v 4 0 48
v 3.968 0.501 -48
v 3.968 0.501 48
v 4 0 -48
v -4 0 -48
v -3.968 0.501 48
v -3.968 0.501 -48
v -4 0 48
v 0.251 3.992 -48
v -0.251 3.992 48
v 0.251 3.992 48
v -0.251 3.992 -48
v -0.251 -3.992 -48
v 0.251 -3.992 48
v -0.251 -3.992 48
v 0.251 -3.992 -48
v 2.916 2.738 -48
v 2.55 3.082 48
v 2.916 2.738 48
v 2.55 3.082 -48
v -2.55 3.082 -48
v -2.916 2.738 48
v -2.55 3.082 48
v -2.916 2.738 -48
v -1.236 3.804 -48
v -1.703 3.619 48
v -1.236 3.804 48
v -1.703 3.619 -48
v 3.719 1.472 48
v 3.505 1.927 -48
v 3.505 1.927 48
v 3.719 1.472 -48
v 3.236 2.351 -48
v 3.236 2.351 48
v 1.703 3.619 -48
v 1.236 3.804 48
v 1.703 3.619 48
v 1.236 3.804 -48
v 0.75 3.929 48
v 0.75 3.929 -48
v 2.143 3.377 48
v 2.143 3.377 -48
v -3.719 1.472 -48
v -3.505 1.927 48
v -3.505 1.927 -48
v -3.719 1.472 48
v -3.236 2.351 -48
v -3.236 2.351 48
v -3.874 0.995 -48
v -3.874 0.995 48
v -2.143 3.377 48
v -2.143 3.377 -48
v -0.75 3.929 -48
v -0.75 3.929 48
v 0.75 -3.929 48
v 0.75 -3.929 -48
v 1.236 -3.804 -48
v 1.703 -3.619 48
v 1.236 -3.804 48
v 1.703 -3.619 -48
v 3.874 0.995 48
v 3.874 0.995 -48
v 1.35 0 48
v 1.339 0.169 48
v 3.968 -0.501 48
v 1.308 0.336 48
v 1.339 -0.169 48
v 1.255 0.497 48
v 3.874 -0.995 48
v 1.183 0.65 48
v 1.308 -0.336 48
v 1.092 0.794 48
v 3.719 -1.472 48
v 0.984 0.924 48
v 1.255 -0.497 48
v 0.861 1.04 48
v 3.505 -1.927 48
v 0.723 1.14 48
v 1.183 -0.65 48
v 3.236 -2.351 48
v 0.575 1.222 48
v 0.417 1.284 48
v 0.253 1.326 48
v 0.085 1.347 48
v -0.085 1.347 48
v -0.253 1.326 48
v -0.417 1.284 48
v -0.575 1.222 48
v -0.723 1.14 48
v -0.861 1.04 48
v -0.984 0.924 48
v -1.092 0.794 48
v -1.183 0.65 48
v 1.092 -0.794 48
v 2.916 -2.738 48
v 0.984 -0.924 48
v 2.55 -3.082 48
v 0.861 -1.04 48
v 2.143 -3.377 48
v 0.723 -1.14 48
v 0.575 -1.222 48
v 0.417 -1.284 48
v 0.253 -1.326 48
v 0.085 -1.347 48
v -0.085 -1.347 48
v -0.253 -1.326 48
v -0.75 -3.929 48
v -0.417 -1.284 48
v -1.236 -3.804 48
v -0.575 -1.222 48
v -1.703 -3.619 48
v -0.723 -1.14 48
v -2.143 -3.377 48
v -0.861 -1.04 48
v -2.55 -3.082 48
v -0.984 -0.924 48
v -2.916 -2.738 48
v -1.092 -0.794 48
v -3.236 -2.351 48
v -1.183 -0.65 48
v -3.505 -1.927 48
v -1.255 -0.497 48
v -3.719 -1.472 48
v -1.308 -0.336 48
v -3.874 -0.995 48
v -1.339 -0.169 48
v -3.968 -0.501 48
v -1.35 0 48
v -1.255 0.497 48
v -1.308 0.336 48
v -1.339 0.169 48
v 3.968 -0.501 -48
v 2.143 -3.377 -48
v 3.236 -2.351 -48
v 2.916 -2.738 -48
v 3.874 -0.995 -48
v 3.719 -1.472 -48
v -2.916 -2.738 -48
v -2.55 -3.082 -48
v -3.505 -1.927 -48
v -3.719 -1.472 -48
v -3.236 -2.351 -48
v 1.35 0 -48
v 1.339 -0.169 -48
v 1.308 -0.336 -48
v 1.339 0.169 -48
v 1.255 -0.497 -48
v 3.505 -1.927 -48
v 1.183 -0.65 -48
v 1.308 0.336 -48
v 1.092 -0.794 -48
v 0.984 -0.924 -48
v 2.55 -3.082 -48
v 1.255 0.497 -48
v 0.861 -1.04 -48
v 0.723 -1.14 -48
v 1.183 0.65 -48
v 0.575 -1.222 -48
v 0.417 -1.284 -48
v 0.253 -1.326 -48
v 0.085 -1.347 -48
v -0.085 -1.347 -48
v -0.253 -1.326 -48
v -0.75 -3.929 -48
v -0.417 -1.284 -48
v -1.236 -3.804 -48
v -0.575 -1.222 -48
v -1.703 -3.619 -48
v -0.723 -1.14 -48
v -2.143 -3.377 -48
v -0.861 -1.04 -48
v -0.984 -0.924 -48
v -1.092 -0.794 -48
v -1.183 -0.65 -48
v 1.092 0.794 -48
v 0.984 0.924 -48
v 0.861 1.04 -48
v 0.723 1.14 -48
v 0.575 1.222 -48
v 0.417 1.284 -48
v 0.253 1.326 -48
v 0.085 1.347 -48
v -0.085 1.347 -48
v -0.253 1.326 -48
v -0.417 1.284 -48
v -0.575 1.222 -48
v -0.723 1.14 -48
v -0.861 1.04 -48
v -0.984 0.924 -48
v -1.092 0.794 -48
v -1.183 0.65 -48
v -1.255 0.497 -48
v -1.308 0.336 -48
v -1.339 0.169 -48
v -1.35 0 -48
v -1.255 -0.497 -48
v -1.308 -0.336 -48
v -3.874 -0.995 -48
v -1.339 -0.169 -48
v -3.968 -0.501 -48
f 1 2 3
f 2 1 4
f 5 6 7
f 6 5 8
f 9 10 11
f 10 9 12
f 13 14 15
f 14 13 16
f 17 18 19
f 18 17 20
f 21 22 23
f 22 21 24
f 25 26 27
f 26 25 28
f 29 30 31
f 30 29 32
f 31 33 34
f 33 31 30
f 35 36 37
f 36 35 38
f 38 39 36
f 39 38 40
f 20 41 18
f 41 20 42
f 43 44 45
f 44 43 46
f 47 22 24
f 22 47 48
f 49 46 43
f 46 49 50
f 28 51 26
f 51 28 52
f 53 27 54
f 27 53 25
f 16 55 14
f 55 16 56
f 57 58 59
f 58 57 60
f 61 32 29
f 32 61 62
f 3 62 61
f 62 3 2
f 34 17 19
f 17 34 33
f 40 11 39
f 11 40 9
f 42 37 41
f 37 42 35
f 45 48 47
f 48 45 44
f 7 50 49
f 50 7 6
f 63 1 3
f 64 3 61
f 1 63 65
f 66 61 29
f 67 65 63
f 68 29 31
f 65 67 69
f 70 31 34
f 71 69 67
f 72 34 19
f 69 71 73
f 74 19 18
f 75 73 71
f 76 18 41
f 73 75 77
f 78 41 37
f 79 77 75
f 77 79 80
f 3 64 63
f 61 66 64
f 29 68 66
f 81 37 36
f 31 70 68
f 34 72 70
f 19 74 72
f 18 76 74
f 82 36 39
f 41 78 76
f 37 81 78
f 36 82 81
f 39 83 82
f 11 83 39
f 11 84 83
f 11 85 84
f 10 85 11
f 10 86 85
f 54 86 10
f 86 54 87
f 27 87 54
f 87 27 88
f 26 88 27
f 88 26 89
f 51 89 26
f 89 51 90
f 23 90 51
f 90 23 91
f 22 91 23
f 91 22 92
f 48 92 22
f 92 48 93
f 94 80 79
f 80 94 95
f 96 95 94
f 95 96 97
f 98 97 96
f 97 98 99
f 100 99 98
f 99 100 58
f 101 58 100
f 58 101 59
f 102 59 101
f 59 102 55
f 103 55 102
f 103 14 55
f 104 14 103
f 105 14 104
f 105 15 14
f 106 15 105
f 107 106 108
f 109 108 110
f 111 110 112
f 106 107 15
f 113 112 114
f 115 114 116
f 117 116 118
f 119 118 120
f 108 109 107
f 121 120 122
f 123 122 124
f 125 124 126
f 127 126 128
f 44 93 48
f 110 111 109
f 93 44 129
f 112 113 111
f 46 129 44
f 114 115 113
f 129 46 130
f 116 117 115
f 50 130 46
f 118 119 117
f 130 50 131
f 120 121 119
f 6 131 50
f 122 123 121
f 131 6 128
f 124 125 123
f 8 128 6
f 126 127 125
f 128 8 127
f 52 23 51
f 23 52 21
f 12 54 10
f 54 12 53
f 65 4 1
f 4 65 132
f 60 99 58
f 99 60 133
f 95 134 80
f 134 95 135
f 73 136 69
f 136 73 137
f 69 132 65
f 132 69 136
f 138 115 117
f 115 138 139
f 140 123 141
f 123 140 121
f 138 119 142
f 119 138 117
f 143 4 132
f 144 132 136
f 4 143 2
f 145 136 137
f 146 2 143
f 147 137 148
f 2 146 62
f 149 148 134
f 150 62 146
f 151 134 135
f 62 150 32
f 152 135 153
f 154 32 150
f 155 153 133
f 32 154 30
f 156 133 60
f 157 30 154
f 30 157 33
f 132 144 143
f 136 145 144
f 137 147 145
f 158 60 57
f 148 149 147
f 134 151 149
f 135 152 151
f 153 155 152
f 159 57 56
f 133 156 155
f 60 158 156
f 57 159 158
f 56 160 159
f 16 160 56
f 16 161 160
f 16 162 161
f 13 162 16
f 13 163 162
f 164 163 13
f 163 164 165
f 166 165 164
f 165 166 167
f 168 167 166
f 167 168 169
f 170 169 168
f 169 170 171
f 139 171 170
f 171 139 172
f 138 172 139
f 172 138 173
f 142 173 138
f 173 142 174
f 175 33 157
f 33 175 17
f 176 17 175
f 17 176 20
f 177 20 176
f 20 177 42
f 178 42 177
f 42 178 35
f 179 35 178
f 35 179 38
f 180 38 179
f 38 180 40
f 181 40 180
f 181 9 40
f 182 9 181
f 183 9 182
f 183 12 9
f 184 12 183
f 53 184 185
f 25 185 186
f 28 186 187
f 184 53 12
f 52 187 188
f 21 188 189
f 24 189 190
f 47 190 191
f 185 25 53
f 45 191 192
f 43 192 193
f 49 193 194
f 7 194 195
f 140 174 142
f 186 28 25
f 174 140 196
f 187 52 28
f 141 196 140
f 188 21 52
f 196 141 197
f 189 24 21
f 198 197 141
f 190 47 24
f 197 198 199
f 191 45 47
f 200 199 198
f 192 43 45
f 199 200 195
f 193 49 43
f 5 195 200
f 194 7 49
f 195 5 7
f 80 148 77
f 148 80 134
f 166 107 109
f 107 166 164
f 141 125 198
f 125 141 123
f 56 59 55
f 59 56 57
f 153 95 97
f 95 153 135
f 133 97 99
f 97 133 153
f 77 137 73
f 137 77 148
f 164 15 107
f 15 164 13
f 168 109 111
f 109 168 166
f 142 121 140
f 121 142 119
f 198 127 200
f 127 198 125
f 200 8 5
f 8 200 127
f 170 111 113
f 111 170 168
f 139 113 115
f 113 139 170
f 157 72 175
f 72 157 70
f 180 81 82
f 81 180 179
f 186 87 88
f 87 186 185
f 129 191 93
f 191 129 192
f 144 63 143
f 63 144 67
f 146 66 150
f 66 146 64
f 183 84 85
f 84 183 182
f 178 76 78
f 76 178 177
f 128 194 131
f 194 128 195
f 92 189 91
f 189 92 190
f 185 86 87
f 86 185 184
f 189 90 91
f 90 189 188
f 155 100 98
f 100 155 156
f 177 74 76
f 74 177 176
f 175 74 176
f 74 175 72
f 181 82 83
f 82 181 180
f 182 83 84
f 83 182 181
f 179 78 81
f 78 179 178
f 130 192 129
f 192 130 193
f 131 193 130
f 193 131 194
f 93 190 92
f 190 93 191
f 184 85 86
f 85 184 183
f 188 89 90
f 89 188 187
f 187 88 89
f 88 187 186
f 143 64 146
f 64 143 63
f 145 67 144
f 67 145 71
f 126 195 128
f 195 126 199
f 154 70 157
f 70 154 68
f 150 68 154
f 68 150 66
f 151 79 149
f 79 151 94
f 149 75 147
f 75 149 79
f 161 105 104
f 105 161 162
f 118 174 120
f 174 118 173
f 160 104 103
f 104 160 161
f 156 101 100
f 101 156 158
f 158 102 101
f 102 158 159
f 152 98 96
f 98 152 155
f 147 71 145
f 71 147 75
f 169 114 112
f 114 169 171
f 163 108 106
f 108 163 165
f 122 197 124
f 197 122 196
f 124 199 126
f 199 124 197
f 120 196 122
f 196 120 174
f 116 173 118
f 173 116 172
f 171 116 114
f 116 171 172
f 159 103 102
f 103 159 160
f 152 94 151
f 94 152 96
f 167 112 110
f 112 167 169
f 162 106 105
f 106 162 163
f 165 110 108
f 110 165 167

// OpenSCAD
$fn = 50;


difference() {
	union() {
		translate(v = [0, 0, -48.0000000000]) {
			cylinder(h = 96, r = 4.0000000000);
		}
	}
	union() {
		translate(v = [0, 0, -100.0000000000]) {
			cylinder(h = 200, r = 1.3500000000);
		}
	}
}
